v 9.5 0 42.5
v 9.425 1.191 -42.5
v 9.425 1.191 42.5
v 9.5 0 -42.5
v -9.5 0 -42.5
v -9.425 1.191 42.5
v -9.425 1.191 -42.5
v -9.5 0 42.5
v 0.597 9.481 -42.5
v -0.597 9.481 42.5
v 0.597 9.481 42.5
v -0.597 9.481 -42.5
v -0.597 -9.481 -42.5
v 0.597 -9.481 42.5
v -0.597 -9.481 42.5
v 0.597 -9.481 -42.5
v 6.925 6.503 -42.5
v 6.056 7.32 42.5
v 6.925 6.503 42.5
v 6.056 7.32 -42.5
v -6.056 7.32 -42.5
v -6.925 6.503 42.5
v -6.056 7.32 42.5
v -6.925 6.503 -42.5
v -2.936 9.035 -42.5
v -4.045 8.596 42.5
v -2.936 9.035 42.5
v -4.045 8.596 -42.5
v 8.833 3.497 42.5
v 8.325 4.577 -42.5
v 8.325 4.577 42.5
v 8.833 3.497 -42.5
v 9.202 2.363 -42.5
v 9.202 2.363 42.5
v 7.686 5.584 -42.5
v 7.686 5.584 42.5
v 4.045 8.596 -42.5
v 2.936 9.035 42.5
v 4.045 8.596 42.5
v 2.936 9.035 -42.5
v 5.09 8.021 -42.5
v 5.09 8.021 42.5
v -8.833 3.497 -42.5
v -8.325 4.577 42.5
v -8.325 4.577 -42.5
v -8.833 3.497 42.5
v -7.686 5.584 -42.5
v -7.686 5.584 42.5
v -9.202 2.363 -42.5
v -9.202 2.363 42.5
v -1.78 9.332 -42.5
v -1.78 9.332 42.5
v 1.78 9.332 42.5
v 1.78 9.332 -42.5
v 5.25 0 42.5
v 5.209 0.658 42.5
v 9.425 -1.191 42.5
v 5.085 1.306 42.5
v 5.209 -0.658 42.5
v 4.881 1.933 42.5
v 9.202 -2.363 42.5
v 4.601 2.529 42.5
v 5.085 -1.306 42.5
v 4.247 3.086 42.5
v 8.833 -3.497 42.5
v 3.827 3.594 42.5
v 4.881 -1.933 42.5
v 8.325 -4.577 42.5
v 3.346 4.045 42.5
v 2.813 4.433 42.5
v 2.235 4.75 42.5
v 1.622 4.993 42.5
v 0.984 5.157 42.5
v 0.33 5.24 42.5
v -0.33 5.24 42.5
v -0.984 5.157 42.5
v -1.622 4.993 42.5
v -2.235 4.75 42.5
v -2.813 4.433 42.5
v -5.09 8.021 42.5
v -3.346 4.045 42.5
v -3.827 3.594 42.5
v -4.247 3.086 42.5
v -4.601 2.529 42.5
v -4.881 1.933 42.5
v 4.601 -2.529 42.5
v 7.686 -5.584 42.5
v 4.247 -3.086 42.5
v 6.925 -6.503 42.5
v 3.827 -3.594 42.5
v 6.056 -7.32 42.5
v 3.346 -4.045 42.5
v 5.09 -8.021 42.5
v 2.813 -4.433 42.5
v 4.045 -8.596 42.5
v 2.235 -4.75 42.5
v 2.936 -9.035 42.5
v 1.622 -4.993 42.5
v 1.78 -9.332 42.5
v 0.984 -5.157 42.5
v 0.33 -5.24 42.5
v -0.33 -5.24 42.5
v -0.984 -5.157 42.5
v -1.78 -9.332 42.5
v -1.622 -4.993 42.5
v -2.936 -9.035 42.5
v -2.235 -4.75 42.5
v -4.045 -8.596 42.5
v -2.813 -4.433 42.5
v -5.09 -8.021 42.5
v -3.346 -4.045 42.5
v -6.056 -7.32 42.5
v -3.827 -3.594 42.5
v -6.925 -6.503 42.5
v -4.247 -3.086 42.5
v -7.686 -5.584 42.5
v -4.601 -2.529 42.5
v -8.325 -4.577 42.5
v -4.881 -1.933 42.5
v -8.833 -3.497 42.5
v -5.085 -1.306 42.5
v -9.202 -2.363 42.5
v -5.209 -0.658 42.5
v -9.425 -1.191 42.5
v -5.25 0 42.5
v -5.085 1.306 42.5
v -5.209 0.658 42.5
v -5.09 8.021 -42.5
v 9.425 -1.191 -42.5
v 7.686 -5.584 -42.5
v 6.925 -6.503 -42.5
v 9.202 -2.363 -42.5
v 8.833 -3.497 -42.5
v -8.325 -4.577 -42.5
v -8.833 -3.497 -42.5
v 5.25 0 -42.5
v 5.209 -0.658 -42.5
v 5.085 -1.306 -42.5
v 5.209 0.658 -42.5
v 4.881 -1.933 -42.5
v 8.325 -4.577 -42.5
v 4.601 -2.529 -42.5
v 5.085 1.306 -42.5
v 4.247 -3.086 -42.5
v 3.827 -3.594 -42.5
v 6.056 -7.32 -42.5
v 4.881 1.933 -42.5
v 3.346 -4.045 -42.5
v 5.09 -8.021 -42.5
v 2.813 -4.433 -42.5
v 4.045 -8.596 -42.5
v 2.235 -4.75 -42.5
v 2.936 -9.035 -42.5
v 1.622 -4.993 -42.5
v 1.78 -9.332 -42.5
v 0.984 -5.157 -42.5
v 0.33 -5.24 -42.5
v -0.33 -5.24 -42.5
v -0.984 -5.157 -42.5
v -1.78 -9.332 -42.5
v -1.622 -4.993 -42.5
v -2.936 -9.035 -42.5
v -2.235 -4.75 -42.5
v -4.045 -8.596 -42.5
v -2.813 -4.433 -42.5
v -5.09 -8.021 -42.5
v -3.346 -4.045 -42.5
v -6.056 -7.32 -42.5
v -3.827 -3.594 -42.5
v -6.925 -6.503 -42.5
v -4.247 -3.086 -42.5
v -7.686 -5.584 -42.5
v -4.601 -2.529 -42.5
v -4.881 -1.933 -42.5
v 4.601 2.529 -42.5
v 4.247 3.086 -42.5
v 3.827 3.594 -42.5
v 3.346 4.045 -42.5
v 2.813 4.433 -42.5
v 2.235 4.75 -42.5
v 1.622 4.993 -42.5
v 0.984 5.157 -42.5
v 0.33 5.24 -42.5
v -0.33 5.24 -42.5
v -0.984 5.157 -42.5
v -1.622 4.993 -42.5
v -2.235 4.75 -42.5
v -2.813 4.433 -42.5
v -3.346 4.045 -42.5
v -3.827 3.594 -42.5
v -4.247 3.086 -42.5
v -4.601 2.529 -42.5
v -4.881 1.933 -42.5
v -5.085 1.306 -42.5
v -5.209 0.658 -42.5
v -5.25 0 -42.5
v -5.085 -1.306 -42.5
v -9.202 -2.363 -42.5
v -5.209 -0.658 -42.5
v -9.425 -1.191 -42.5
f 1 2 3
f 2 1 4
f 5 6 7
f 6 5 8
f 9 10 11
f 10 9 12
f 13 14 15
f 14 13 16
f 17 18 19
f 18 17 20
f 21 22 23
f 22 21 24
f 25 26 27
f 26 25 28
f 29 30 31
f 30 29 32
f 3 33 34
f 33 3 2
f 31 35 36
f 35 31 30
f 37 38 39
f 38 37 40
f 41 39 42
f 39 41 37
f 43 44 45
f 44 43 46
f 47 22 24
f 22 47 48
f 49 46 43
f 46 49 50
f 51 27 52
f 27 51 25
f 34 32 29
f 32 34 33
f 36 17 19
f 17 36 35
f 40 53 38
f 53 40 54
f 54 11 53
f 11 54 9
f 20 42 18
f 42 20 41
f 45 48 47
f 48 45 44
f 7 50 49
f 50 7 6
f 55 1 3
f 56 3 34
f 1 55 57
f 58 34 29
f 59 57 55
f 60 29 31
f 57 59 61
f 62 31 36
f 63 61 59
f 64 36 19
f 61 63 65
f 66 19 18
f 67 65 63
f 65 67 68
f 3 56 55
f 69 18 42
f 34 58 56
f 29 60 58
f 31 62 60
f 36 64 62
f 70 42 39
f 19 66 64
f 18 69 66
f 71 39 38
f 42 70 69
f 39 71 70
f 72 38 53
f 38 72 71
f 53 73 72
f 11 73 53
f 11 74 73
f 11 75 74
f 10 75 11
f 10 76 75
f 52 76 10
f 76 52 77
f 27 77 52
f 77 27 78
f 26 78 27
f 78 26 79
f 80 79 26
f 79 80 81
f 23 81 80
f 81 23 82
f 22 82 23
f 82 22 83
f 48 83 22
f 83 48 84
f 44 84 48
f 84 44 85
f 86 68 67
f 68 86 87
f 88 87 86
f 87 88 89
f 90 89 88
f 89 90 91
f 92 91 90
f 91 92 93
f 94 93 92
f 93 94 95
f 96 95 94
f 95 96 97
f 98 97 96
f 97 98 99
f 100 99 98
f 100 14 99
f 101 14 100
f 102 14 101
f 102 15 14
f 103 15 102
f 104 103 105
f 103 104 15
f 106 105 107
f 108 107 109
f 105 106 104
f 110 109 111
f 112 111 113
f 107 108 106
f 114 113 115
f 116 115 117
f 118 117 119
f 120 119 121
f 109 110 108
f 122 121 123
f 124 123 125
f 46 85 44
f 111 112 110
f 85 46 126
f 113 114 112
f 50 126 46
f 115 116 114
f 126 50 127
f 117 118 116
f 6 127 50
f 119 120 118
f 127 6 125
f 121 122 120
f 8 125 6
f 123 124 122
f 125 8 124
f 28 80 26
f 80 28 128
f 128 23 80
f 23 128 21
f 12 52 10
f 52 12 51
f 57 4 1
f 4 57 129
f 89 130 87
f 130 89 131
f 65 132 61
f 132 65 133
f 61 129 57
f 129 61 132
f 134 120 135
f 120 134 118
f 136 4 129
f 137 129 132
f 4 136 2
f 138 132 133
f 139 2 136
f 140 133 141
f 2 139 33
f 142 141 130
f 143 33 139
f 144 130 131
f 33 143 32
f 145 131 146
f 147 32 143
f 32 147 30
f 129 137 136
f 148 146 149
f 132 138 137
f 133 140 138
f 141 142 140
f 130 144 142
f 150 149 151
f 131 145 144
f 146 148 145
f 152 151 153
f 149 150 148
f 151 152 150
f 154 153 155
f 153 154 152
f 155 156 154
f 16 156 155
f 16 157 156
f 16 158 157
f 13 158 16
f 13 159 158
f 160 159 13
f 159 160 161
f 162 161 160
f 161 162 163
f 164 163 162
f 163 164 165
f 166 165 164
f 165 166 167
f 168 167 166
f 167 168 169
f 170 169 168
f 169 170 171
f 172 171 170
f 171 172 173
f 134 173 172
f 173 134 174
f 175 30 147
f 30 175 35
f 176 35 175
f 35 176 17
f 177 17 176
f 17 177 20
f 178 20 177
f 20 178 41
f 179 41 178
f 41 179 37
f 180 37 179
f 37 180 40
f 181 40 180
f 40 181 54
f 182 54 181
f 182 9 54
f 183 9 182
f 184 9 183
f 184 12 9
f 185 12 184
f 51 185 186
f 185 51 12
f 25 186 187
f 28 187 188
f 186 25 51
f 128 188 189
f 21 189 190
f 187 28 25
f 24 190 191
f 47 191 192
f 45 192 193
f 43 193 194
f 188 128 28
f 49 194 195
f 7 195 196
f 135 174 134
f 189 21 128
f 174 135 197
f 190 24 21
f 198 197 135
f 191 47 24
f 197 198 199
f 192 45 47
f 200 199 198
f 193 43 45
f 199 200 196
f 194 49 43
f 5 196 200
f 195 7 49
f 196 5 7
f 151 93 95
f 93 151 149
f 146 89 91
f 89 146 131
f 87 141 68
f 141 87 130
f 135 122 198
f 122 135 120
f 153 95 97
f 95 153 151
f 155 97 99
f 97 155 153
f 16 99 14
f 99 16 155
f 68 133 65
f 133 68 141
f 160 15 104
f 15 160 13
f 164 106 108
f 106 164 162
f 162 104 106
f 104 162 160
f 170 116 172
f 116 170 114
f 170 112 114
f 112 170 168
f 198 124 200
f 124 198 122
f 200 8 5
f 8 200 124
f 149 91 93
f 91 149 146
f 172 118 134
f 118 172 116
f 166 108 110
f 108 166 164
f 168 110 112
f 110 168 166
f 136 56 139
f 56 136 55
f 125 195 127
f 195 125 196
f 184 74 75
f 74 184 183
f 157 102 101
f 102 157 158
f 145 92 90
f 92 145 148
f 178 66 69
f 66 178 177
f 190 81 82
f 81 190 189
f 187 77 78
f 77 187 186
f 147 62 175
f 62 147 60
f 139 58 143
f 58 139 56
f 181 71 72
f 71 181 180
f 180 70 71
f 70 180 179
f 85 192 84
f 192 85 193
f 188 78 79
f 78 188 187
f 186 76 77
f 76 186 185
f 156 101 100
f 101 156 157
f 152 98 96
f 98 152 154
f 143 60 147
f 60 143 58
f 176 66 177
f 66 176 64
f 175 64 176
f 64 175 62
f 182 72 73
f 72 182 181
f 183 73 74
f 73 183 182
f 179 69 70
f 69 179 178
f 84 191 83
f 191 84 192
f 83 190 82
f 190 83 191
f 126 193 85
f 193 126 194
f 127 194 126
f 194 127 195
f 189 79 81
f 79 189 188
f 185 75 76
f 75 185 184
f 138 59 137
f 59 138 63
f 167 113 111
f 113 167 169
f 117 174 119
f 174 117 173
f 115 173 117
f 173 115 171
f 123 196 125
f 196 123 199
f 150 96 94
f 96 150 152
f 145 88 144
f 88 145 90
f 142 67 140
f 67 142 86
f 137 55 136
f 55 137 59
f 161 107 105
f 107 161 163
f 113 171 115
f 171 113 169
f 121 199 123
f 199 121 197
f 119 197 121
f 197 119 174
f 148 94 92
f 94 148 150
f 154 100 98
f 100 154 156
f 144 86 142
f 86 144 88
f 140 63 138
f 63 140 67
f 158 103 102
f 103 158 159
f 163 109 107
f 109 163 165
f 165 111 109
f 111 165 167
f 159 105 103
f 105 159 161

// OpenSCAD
$fn = 50;


difference() {
	union() {
		translate(v = [0, 0, -42.5000000000]) {
			cylinder(h = 85, r = 9.5000000000);
		}
	}
	union() {
		translate(v = [0, 0, -100.0000000000]) {
			cylinder(h = 200, r = 5.2500000000);
		}
	}
}
